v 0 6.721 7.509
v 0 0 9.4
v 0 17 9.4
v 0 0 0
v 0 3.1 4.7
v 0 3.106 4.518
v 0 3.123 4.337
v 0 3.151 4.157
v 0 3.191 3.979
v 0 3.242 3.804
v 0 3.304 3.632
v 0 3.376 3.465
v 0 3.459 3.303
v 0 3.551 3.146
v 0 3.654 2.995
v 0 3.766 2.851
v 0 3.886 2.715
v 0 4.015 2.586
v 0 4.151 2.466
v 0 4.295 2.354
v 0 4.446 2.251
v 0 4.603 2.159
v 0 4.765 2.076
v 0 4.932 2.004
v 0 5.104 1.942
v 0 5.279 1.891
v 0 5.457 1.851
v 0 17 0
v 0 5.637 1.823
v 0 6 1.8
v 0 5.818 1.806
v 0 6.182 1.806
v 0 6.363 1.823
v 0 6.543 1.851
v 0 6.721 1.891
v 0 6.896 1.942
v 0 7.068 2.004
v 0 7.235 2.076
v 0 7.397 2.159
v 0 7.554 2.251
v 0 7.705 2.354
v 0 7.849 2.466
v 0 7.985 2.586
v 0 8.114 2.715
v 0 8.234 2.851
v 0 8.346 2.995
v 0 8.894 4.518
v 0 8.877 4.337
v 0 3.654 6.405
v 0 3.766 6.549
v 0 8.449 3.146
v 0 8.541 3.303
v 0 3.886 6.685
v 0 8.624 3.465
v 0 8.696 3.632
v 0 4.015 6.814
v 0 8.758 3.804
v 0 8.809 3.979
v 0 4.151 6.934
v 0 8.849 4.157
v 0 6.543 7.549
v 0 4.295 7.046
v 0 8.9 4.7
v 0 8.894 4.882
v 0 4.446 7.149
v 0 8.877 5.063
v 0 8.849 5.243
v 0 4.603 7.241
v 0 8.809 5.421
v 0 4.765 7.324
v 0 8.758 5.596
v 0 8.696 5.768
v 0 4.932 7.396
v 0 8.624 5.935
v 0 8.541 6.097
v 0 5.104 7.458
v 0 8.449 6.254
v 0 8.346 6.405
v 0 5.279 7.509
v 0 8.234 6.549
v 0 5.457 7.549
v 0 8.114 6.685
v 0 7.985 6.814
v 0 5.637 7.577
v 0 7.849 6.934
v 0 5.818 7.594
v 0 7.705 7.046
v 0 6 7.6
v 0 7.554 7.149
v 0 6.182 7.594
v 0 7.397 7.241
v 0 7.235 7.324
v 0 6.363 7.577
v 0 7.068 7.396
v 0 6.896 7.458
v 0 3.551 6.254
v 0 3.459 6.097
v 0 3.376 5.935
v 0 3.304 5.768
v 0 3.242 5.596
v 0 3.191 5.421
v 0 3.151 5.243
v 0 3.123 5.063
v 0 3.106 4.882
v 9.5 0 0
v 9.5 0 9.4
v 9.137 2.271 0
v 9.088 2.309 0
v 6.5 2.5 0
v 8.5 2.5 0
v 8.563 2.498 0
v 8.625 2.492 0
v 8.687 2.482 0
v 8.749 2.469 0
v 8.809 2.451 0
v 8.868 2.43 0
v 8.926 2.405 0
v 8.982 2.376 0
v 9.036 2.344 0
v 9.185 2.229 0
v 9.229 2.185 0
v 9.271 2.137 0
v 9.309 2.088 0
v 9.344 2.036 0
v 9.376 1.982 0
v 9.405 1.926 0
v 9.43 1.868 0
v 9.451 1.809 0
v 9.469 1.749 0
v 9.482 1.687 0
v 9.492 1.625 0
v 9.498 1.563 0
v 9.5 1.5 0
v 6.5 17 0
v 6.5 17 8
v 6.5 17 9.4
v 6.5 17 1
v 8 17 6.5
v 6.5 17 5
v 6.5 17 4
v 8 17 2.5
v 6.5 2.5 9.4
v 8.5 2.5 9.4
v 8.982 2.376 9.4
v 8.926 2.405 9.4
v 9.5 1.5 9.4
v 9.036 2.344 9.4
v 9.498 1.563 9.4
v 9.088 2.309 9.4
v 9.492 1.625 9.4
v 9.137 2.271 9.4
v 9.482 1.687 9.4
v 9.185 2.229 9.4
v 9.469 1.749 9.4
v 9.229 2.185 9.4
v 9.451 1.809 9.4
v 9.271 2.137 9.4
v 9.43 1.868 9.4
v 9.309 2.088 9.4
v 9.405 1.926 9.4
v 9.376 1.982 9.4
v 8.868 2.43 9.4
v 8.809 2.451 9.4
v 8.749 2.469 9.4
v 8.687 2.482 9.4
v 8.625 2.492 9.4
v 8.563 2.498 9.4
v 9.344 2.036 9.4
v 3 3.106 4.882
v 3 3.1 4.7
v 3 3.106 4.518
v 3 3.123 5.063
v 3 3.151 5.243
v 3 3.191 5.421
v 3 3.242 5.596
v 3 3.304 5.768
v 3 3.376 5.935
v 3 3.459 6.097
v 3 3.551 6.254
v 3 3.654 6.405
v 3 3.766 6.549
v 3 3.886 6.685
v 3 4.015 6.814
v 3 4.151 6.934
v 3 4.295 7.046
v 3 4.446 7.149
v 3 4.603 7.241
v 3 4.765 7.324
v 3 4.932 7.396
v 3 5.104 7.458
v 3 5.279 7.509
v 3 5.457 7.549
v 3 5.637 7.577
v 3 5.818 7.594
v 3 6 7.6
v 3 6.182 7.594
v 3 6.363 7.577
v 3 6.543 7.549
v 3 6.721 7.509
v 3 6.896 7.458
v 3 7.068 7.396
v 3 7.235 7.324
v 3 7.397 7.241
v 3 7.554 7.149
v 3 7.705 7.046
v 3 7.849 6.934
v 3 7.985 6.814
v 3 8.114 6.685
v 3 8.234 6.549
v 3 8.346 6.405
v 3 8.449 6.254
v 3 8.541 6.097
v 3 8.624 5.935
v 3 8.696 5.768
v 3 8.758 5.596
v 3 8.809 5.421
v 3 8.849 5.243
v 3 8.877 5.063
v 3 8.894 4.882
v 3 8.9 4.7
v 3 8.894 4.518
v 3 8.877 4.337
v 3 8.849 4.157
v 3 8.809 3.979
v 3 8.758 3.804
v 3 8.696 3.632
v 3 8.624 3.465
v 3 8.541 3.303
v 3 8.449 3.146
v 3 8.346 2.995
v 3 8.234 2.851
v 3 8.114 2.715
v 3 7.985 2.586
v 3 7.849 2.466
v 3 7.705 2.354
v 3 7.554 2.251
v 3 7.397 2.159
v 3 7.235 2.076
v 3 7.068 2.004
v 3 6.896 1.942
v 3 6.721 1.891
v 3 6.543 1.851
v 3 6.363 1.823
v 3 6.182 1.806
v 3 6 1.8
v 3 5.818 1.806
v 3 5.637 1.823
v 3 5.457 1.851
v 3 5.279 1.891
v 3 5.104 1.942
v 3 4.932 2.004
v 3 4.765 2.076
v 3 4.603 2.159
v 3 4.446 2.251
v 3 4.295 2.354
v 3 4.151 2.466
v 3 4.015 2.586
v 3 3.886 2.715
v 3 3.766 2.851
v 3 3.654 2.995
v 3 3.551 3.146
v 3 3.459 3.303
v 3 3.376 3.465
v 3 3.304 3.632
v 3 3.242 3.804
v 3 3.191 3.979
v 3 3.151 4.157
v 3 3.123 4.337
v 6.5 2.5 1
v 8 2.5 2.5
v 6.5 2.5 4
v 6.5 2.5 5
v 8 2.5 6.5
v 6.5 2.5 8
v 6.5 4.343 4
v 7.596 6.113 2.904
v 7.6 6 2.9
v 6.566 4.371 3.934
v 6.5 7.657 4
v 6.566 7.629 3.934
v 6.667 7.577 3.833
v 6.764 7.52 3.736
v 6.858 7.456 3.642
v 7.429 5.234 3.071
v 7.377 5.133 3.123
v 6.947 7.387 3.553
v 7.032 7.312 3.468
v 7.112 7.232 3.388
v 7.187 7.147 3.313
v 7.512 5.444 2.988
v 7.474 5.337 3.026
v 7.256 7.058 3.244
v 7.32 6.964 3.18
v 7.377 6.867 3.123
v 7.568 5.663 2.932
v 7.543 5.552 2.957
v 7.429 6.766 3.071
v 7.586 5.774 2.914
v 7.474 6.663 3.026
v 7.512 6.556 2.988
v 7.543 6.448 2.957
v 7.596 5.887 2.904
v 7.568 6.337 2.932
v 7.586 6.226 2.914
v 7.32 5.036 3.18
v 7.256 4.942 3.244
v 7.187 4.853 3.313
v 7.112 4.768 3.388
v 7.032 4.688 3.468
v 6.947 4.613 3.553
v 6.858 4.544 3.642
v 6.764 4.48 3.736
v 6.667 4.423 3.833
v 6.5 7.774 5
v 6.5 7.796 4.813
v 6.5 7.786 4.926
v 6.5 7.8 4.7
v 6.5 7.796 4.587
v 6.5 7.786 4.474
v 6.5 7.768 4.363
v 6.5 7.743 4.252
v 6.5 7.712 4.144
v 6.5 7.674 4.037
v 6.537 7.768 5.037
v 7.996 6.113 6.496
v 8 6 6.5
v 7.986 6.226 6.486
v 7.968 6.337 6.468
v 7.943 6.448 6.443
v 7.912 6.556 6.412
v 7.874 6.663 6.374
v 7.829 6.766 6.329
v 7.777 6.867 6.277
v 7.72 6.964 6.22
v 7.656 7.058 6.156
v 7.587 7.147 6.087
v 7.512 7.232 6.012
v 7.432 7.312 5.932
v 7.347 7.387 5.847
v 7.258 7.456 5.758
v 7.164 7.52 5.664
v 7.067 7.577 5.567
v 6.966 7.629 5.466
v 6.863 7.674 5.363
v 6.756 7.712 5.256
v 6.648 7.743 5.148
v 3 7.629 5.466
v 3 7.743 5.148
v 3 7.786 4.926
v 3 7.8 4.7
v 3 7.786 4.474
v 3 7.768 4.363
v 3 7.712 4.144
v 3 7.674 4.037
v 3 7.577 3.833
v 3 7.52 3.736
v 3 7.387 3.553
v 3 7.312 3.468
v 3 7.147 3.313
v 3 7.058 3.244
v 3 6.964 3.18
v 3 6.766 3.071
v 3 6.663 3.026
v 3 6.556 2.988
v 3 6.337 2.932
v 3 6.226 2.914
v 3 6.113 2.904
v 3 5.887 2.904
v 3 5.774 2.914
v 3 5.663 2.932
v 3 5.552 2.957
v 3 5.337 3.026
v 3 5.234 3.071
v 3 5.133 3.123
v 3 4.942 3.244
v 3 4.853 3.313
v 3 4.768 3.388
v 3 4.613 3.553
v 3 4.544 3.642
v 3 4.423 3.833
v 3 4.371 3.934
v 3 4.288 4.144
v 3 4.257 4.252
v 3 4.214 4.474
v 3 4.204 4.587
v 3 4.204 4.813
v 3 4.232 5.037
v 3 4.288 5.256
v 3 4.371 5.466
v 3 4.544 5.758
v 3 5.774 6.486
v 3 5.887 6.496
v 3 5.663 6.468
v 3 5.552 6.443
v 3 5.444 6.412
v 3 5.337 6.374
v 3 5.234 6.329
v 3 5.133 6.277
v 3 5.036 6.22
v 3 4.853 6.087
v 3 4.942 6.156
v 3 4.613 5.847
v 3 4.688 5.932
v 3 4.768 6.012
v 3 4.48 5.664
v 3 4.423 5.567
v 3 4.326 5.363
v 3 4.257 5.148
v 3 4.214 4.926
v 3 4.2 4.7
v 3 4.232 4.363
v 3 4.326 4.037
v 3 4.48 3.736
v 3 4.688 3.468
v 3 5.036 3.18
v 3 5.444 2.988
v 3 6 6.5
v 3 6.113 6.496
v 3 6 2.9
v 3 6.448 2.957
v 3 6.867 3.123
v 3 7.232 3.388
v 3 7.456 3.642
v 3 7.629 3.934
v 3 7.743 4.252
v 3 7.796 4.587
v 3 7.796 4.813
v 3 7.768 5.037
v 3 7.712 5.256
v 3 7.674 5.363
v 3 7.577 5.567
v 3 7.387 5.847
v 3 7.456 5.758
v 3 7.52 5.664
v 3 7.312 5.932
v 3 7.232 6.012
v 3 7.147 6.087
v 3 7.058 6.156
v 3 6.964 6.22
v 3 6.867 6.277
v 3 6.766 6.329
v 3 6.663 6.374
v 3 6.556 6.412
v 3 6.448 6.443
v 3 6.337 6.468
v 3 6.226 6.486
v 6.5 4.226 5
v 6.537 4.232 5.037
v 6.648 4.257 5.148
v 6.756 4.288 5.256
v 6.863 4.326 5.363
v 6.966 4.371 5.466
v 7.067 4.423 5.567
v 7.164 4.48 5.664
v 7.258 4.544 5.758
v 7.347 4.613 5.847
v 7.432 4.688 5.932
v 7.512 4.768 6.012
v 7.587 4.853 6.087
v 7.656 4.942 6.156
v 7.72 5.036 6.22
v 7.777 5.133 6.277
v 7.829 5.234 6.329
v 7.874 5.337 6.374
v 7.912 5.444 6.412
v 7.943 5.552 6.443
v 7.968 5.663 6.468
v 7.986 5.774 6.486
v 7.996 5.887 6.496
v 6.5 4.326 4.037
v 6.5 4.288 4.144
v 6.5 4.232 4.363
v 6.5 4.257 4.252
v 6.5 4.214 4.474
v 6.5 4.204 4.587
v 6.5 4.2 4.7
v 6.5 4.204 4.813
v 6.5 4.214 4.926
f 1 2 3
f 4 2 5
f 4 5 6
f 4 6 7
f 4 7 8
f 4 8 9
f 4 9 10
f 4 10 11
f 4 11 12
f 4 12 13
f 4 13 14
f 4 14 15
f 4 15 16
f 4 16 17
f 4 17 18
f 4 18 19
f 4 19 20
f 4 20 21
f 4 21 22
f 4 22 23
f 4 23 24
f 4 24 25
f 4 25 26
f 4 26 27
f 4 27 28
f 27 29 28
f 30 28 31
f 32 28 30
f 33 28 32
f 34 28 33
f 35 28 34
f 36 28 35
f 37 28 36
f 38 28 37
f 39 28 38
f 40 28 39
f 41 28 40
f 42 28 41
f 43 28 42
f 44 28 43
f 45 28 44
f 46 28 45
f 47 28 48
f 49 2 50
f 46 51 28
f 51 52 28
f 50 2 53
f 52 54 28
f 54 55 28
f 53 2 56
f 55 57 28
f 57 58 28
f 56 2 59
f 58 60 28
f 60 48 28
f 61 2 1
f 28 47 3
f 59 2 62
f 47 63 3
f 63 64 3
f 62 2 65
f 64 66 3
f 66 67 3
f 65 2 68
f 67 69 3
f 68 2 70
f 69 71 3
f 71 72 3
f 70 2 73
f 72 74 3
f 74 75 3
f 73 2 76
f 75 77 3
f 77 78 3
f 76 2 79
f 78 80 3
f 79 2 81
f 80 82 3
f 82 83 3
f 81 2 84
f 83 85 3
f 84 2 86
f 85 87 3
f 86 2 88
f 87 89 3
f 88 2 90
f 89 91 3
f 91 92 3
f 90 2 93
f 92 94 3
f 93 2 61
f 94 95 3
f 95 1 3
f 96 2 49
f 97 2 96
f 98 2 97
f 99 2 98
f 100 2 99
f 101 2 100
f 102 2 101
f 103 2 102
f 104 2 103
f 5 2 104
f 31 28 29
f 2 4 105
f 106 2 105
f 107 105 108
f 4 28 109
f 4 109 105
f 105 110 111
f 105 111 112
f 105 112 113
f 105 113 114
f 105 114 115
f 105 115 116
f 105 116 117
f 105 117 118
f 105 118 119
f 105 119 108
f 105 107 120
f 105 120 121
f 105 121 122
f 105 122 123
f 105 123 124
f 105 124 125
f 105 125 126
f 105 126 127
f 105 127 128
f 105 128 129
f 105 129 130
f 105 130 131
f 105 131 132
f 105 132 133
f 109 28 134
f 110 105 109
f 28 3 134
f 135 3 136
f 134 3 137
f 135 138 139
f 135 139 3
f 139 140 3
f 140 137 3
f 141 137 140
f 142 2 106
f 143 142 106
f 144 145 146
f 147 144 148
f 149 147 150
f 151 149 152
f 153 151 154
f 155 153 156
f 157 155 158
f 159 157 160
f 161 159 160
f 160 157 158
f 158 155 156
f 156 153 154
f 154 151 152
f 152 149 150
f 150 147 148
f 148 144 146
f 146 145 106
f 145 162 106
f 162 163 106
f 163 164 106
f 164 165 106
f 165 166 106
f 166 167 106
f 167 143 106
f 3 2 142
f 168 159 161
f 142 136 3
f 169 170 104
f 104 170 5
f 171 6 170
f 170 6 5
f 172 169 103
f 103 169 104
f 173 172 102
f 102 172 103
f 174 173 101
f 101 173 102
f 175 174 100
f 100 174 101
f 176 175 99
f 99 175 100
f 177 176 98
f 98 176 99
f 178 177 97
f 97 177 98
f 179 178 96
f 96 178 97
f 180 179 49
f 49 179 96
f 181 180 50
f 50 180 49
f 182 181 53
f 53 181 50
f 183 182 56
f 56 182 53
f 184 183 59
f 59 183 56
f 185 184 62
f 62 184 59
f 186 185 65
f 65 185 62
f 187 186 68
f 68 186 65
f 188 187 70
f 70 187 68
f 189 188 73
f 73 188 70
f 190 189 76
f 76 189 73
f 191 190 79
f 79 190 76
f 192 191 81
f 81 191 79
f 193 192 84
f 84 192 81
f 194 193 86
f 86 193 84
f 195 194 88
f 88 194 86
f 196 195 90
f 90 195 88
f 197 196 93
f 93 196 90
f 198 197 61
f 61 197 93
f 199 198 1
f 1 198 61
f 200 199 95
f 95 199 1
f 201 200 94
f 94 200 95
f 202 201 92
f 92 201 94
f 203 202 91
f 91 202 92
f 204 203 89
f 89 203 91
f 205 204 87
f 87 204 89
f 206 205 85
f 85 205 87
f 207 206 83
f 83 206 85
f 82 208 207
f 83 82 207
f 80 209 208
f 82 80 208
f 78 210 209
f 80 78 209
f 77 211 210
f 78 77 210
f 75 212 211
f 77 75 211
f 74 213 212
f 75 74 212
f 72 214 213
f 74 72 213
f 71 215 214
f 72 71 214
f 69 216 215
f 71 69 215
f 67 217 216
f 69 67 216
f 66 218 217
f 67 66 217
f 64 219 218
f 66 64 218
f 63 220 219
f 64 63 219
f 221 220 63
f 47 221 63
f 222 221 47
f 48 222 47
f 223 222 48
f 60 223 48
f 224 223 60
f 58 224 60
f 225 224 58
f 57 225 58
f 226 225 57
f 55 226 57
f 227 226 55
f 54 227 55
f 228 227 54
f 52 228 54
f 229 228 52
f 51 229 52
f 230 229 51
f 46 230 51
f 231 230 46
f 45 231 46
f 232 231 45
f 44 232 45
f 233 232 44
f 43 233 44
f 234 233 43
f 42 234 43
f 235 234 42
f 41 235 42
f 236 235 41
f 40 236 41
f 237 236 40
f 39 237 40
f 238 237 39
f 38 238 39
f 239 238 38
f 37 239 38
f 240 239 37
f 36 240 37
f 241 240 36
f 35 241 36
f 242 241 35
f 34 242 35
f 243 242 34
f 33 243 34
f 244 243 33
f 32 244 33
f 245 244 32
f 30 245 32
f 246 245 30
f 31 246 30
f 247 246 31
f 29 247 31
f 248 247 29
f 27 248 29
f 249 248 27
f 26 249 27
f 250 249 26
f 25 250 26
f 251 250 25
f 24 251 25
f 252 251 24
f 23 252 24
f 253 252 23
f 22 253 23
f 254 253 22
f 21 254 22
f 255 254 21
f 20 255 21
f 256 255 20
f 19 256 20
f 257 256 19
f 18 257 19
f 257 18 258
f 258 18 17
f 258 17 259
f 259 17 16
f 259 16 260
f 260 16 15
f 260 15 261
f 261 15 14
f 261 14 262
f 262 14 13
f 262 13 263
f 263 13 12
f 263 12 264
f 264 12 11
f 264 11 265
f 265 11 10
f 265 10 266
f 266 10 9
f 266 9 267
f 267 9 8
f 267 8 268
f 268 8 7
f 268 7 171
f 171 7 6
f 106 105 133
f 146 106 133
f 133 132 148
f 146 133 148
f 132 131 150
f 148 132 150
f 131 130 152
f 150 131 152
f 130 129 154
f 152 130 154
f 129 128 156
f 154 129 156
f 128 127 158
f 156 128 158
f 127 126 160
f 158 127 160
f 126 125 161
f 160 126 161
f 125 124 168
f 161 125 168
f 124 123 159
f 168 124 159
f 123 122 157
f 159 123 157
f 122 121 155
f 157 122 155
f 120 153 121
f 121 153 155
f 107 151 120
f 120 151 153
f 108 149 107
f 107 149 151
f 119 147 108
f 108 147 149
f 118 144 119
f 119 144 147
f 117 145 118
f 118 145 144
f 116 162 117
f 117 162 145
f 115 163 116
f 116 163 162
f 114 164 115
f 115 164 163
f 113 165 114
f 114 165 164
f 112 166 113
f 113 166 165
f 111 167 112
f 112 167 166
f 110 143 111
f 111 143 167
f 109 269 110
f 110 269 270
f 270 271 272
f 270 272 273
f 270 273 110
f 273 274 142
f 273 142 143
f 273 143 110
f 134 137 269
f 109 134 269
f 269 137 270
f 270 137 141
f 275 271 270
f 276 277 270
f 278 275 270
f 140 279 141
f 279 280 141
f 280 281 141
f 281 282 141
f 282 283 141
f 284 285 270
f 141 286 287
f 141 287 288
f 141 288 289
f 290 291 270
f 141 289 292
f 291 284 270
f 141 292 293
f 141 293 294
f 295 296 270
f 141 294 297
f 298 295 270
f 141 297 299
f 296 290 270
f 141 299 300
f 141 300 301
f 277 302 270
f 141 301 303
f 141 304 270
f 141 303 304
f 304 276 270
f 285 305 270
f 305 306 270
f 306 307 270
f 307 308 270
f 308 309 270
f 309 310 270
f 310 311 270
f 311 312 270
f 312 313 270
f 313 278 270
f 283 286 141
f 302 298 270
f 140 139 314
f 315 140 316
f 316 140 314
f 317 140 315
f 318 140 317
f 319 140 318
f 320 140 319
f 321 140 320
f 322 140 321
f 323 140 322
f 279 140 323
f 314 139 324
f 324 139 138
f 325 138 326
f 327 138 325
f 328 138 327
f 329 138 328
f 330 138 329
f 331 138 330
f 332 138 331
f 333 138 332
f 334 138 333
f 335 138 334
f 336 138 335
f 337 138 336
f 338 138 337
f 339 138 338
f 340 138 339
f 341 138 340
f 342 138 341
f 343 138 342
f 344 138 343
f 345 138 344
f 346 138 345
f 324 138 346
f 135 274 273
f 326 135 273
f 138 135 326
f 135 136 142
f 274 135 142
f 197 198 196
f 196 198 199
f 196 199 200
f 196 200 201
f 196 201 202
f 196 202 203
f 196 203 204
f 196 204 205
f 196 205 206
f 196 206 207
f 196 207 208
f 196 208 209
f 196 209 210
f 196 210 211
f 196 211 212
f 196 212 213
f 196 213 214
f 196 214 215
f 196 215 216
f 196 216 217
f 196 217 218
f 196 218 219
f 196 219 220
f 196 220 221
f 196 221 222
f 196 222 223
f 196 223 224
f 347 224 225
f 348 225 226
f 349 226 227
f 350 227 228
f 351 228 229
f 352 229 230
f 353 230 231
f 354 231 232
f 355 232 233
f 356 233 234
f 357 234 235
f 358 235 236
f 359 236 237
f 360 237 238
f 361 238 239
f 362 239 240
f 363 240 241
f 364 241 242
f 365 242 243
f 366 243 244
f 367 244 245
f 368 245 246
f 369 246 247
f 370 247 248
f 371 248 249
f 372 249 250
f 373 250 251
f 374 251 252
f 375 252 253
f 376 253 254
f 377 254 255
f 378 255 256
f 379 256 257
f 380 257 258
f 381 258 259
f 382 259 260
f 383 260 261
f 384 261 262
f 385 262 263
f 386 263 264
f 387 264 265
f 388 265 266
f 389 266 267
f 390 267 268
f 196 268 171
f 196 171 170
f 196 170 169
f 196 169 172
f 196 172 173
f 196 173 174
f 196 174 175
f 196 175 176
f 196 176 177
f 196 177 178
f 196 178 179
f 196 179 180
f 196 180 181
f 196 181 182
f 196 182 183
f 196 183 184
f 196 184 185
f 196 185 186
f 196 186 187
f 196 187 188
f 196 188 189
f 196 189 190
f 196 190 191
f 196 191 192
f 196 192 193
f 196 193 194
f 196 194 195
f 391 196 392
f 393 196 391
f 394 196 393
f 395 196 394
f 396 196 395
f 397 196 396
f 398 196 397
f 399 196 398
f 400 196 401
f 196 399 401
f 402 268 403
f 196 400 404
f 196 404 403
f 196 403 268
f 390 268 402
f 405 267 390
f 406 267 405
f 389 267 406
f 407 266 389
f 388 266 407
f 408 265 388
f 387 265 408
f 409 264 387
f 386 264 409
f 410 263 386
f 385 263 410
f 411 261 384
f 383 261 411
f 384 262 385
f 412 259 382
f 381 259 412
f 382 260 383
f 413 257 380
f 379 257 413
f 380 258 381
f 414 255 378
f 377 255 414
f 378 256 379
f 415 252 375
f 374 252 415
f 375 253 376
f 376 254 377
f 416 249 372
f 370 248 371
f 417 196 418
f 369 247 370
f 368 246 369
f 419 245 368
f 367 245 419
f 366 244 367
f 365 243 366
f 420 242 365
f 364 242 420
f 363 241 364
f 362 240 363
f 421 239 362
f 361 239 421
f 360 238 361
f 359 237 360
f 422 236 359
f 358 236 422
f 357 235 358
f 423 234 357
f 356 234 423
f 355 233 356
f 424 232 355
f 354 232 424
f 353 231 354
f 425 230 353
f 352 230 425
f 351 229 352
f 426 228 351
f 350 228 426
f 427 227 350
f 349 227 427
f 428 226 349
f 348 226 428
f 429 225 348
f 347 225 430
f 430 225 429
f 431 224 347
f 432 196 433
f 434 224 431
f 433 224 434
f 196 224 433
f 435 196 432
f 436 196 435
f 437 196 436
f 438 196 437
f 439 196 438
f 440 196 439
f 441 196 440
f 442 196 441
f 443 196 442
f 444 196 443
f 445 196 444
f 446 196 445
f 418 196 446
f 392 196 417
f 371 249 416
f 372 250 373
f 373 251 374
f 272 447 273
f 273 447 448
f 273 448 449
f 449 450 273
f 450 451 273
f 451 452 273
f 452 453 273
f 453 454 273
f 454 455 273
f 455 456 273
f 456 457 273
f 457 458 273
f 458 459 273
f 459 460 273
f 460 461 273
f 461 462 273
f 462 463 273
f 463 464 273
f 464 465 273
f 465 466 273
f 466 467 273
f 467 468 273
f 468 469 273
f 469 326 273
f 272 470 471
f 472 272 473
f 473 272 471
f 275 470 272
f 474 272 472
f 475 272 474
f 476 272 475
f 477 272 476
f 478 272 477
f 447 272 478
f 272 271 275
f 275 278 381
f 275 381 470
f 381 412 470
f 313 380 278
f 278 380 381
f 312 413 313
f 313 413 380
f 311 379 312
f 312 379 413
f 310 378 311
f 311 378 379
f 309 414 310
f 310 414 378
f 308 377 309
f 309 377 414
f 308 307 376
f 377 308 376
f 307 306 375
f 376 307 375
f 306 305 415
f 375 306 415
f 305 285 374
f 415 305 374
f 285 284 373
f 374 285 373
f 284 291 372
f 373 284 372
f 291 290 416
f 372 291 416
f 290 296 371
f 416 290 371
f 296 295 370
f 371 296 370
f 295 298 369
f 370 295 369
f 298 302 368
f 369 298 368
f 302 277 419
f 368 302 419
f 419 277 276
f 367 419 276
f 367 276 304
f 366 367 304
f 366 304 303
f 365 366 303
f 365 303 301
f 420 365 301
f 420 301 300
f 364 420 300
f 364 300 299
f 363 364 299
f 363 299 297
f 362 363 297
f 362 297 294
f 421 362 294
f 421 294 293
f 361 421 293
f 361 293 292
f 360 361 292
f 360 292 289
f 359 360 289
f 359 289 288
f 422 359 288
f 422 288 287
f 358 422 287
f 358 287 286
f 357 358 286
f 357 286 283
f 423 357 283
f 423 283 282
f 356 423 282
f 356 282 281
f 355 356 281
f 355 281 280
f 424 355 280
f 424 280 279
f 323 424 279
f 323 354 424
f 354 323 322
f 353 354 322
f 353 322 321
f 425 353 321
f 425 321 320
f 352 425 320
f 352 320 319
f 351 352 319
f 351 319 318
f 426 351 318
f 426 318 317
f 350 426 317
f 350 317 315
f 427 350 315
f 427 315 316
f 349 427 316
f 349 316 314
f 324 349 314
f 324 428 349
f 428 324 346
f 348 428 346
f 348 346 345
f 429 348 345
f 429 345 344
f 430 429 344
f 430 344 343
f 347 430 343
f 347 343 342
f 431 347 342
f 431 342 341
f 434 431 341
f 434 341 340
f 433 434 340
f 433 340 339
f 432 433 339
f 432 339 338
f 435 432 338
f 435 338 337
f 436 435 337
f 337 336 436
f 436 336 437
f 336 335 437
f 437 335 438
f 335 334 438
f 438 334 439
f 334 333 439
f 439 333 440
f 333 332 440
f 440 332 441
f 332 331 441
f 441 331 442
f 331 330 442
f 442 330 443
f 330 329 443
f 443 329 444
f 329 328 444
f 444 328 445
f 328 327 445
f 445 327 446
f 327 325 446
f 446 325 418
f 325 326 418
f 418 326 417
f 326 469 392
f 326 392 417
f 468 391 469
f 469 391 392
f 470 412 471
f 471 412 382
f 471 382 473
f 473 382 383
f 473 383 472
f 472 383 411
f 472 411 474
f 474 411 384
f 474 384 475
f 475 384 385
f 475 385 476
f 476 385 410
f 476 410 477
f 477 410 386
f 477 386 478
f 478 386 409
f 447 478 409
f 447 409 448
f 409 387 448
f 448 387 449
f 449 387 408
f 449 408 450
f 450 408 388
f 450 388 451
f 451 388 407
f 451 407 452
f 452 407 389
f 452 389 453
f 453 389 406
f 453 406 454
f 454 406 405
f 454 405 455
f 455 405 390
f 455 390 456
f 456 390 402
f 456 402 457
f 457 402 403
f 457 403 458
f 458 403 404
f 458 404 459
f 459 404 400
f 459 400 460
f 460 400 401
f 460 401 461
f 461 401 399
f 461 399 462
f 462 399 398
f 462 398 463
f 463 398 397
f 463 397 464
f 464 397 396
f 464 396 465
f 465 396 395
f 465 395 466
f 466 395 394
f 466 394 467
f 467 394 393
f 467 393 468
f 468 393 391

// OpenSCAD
// Created from Code_Xcarriage_B.stl
// https://github.com/Mecan0/Code
// By J.Rodigo (www.jodrigo.net)
// Licence Creative commons atribution & share alike.

/**************************/
// Parámetros de la pieza  /
/**************************/

dGran = 5.8;	// Diámetro del taladro exterior (5.8)
dPeque = 3.6;	// Diámetro del taladro interior (3.6)


// Dientes de sujeción 
module diente(){
	rotate( -135, [0, 1, 0])
	cube([3, 14.5, 3]);
}

// Saliente redondeado 
module saliente(){
	hull(){
		// Parte plana
		translate([6.5, 0, 0])
		cube([3, 1.5, 9.4]);
		translate([6.5, 1.5, 0])
		cube([2, 1, 9.4]);
		// Redondeo 
		translate([8.5, 1.5, 0])
		cylinder(h = 9.4, r = 1, $fn=100);
	}
}

// Taladros de la pieza
module taladro(){
	// Pequeño
	translate([-1, 6, 4.7])
	rotate( 90, [0, 1, 0])
	#cylinder(h = 10, r = dPeque/2, $fn=100);
	// Grande
	translate([-1, 6, 4.7])
	rotate( 90, [0, 1, 0])
	cylinder(h = 4, r = dGran/2, $fn=100);
}

// Pieza y las operaciones
module pieza(){
	difference () {
		// Parte solida de la pieza
		union() {
			// Cubo base a lo largo del eje Y
			cube([6.5, 17, 9.4]);	
			// Saliente redondeado
			saliente();
			// Posicionamos los dos diente 
			translate([8, 2.5, 2.5])
			diente();
			translate([8, 2.5, 6.5])
			diente();
		}
		// Aplicamos los taladros
		taladro();
	}	
}

// Generamos la pieza!!

	pieza();
